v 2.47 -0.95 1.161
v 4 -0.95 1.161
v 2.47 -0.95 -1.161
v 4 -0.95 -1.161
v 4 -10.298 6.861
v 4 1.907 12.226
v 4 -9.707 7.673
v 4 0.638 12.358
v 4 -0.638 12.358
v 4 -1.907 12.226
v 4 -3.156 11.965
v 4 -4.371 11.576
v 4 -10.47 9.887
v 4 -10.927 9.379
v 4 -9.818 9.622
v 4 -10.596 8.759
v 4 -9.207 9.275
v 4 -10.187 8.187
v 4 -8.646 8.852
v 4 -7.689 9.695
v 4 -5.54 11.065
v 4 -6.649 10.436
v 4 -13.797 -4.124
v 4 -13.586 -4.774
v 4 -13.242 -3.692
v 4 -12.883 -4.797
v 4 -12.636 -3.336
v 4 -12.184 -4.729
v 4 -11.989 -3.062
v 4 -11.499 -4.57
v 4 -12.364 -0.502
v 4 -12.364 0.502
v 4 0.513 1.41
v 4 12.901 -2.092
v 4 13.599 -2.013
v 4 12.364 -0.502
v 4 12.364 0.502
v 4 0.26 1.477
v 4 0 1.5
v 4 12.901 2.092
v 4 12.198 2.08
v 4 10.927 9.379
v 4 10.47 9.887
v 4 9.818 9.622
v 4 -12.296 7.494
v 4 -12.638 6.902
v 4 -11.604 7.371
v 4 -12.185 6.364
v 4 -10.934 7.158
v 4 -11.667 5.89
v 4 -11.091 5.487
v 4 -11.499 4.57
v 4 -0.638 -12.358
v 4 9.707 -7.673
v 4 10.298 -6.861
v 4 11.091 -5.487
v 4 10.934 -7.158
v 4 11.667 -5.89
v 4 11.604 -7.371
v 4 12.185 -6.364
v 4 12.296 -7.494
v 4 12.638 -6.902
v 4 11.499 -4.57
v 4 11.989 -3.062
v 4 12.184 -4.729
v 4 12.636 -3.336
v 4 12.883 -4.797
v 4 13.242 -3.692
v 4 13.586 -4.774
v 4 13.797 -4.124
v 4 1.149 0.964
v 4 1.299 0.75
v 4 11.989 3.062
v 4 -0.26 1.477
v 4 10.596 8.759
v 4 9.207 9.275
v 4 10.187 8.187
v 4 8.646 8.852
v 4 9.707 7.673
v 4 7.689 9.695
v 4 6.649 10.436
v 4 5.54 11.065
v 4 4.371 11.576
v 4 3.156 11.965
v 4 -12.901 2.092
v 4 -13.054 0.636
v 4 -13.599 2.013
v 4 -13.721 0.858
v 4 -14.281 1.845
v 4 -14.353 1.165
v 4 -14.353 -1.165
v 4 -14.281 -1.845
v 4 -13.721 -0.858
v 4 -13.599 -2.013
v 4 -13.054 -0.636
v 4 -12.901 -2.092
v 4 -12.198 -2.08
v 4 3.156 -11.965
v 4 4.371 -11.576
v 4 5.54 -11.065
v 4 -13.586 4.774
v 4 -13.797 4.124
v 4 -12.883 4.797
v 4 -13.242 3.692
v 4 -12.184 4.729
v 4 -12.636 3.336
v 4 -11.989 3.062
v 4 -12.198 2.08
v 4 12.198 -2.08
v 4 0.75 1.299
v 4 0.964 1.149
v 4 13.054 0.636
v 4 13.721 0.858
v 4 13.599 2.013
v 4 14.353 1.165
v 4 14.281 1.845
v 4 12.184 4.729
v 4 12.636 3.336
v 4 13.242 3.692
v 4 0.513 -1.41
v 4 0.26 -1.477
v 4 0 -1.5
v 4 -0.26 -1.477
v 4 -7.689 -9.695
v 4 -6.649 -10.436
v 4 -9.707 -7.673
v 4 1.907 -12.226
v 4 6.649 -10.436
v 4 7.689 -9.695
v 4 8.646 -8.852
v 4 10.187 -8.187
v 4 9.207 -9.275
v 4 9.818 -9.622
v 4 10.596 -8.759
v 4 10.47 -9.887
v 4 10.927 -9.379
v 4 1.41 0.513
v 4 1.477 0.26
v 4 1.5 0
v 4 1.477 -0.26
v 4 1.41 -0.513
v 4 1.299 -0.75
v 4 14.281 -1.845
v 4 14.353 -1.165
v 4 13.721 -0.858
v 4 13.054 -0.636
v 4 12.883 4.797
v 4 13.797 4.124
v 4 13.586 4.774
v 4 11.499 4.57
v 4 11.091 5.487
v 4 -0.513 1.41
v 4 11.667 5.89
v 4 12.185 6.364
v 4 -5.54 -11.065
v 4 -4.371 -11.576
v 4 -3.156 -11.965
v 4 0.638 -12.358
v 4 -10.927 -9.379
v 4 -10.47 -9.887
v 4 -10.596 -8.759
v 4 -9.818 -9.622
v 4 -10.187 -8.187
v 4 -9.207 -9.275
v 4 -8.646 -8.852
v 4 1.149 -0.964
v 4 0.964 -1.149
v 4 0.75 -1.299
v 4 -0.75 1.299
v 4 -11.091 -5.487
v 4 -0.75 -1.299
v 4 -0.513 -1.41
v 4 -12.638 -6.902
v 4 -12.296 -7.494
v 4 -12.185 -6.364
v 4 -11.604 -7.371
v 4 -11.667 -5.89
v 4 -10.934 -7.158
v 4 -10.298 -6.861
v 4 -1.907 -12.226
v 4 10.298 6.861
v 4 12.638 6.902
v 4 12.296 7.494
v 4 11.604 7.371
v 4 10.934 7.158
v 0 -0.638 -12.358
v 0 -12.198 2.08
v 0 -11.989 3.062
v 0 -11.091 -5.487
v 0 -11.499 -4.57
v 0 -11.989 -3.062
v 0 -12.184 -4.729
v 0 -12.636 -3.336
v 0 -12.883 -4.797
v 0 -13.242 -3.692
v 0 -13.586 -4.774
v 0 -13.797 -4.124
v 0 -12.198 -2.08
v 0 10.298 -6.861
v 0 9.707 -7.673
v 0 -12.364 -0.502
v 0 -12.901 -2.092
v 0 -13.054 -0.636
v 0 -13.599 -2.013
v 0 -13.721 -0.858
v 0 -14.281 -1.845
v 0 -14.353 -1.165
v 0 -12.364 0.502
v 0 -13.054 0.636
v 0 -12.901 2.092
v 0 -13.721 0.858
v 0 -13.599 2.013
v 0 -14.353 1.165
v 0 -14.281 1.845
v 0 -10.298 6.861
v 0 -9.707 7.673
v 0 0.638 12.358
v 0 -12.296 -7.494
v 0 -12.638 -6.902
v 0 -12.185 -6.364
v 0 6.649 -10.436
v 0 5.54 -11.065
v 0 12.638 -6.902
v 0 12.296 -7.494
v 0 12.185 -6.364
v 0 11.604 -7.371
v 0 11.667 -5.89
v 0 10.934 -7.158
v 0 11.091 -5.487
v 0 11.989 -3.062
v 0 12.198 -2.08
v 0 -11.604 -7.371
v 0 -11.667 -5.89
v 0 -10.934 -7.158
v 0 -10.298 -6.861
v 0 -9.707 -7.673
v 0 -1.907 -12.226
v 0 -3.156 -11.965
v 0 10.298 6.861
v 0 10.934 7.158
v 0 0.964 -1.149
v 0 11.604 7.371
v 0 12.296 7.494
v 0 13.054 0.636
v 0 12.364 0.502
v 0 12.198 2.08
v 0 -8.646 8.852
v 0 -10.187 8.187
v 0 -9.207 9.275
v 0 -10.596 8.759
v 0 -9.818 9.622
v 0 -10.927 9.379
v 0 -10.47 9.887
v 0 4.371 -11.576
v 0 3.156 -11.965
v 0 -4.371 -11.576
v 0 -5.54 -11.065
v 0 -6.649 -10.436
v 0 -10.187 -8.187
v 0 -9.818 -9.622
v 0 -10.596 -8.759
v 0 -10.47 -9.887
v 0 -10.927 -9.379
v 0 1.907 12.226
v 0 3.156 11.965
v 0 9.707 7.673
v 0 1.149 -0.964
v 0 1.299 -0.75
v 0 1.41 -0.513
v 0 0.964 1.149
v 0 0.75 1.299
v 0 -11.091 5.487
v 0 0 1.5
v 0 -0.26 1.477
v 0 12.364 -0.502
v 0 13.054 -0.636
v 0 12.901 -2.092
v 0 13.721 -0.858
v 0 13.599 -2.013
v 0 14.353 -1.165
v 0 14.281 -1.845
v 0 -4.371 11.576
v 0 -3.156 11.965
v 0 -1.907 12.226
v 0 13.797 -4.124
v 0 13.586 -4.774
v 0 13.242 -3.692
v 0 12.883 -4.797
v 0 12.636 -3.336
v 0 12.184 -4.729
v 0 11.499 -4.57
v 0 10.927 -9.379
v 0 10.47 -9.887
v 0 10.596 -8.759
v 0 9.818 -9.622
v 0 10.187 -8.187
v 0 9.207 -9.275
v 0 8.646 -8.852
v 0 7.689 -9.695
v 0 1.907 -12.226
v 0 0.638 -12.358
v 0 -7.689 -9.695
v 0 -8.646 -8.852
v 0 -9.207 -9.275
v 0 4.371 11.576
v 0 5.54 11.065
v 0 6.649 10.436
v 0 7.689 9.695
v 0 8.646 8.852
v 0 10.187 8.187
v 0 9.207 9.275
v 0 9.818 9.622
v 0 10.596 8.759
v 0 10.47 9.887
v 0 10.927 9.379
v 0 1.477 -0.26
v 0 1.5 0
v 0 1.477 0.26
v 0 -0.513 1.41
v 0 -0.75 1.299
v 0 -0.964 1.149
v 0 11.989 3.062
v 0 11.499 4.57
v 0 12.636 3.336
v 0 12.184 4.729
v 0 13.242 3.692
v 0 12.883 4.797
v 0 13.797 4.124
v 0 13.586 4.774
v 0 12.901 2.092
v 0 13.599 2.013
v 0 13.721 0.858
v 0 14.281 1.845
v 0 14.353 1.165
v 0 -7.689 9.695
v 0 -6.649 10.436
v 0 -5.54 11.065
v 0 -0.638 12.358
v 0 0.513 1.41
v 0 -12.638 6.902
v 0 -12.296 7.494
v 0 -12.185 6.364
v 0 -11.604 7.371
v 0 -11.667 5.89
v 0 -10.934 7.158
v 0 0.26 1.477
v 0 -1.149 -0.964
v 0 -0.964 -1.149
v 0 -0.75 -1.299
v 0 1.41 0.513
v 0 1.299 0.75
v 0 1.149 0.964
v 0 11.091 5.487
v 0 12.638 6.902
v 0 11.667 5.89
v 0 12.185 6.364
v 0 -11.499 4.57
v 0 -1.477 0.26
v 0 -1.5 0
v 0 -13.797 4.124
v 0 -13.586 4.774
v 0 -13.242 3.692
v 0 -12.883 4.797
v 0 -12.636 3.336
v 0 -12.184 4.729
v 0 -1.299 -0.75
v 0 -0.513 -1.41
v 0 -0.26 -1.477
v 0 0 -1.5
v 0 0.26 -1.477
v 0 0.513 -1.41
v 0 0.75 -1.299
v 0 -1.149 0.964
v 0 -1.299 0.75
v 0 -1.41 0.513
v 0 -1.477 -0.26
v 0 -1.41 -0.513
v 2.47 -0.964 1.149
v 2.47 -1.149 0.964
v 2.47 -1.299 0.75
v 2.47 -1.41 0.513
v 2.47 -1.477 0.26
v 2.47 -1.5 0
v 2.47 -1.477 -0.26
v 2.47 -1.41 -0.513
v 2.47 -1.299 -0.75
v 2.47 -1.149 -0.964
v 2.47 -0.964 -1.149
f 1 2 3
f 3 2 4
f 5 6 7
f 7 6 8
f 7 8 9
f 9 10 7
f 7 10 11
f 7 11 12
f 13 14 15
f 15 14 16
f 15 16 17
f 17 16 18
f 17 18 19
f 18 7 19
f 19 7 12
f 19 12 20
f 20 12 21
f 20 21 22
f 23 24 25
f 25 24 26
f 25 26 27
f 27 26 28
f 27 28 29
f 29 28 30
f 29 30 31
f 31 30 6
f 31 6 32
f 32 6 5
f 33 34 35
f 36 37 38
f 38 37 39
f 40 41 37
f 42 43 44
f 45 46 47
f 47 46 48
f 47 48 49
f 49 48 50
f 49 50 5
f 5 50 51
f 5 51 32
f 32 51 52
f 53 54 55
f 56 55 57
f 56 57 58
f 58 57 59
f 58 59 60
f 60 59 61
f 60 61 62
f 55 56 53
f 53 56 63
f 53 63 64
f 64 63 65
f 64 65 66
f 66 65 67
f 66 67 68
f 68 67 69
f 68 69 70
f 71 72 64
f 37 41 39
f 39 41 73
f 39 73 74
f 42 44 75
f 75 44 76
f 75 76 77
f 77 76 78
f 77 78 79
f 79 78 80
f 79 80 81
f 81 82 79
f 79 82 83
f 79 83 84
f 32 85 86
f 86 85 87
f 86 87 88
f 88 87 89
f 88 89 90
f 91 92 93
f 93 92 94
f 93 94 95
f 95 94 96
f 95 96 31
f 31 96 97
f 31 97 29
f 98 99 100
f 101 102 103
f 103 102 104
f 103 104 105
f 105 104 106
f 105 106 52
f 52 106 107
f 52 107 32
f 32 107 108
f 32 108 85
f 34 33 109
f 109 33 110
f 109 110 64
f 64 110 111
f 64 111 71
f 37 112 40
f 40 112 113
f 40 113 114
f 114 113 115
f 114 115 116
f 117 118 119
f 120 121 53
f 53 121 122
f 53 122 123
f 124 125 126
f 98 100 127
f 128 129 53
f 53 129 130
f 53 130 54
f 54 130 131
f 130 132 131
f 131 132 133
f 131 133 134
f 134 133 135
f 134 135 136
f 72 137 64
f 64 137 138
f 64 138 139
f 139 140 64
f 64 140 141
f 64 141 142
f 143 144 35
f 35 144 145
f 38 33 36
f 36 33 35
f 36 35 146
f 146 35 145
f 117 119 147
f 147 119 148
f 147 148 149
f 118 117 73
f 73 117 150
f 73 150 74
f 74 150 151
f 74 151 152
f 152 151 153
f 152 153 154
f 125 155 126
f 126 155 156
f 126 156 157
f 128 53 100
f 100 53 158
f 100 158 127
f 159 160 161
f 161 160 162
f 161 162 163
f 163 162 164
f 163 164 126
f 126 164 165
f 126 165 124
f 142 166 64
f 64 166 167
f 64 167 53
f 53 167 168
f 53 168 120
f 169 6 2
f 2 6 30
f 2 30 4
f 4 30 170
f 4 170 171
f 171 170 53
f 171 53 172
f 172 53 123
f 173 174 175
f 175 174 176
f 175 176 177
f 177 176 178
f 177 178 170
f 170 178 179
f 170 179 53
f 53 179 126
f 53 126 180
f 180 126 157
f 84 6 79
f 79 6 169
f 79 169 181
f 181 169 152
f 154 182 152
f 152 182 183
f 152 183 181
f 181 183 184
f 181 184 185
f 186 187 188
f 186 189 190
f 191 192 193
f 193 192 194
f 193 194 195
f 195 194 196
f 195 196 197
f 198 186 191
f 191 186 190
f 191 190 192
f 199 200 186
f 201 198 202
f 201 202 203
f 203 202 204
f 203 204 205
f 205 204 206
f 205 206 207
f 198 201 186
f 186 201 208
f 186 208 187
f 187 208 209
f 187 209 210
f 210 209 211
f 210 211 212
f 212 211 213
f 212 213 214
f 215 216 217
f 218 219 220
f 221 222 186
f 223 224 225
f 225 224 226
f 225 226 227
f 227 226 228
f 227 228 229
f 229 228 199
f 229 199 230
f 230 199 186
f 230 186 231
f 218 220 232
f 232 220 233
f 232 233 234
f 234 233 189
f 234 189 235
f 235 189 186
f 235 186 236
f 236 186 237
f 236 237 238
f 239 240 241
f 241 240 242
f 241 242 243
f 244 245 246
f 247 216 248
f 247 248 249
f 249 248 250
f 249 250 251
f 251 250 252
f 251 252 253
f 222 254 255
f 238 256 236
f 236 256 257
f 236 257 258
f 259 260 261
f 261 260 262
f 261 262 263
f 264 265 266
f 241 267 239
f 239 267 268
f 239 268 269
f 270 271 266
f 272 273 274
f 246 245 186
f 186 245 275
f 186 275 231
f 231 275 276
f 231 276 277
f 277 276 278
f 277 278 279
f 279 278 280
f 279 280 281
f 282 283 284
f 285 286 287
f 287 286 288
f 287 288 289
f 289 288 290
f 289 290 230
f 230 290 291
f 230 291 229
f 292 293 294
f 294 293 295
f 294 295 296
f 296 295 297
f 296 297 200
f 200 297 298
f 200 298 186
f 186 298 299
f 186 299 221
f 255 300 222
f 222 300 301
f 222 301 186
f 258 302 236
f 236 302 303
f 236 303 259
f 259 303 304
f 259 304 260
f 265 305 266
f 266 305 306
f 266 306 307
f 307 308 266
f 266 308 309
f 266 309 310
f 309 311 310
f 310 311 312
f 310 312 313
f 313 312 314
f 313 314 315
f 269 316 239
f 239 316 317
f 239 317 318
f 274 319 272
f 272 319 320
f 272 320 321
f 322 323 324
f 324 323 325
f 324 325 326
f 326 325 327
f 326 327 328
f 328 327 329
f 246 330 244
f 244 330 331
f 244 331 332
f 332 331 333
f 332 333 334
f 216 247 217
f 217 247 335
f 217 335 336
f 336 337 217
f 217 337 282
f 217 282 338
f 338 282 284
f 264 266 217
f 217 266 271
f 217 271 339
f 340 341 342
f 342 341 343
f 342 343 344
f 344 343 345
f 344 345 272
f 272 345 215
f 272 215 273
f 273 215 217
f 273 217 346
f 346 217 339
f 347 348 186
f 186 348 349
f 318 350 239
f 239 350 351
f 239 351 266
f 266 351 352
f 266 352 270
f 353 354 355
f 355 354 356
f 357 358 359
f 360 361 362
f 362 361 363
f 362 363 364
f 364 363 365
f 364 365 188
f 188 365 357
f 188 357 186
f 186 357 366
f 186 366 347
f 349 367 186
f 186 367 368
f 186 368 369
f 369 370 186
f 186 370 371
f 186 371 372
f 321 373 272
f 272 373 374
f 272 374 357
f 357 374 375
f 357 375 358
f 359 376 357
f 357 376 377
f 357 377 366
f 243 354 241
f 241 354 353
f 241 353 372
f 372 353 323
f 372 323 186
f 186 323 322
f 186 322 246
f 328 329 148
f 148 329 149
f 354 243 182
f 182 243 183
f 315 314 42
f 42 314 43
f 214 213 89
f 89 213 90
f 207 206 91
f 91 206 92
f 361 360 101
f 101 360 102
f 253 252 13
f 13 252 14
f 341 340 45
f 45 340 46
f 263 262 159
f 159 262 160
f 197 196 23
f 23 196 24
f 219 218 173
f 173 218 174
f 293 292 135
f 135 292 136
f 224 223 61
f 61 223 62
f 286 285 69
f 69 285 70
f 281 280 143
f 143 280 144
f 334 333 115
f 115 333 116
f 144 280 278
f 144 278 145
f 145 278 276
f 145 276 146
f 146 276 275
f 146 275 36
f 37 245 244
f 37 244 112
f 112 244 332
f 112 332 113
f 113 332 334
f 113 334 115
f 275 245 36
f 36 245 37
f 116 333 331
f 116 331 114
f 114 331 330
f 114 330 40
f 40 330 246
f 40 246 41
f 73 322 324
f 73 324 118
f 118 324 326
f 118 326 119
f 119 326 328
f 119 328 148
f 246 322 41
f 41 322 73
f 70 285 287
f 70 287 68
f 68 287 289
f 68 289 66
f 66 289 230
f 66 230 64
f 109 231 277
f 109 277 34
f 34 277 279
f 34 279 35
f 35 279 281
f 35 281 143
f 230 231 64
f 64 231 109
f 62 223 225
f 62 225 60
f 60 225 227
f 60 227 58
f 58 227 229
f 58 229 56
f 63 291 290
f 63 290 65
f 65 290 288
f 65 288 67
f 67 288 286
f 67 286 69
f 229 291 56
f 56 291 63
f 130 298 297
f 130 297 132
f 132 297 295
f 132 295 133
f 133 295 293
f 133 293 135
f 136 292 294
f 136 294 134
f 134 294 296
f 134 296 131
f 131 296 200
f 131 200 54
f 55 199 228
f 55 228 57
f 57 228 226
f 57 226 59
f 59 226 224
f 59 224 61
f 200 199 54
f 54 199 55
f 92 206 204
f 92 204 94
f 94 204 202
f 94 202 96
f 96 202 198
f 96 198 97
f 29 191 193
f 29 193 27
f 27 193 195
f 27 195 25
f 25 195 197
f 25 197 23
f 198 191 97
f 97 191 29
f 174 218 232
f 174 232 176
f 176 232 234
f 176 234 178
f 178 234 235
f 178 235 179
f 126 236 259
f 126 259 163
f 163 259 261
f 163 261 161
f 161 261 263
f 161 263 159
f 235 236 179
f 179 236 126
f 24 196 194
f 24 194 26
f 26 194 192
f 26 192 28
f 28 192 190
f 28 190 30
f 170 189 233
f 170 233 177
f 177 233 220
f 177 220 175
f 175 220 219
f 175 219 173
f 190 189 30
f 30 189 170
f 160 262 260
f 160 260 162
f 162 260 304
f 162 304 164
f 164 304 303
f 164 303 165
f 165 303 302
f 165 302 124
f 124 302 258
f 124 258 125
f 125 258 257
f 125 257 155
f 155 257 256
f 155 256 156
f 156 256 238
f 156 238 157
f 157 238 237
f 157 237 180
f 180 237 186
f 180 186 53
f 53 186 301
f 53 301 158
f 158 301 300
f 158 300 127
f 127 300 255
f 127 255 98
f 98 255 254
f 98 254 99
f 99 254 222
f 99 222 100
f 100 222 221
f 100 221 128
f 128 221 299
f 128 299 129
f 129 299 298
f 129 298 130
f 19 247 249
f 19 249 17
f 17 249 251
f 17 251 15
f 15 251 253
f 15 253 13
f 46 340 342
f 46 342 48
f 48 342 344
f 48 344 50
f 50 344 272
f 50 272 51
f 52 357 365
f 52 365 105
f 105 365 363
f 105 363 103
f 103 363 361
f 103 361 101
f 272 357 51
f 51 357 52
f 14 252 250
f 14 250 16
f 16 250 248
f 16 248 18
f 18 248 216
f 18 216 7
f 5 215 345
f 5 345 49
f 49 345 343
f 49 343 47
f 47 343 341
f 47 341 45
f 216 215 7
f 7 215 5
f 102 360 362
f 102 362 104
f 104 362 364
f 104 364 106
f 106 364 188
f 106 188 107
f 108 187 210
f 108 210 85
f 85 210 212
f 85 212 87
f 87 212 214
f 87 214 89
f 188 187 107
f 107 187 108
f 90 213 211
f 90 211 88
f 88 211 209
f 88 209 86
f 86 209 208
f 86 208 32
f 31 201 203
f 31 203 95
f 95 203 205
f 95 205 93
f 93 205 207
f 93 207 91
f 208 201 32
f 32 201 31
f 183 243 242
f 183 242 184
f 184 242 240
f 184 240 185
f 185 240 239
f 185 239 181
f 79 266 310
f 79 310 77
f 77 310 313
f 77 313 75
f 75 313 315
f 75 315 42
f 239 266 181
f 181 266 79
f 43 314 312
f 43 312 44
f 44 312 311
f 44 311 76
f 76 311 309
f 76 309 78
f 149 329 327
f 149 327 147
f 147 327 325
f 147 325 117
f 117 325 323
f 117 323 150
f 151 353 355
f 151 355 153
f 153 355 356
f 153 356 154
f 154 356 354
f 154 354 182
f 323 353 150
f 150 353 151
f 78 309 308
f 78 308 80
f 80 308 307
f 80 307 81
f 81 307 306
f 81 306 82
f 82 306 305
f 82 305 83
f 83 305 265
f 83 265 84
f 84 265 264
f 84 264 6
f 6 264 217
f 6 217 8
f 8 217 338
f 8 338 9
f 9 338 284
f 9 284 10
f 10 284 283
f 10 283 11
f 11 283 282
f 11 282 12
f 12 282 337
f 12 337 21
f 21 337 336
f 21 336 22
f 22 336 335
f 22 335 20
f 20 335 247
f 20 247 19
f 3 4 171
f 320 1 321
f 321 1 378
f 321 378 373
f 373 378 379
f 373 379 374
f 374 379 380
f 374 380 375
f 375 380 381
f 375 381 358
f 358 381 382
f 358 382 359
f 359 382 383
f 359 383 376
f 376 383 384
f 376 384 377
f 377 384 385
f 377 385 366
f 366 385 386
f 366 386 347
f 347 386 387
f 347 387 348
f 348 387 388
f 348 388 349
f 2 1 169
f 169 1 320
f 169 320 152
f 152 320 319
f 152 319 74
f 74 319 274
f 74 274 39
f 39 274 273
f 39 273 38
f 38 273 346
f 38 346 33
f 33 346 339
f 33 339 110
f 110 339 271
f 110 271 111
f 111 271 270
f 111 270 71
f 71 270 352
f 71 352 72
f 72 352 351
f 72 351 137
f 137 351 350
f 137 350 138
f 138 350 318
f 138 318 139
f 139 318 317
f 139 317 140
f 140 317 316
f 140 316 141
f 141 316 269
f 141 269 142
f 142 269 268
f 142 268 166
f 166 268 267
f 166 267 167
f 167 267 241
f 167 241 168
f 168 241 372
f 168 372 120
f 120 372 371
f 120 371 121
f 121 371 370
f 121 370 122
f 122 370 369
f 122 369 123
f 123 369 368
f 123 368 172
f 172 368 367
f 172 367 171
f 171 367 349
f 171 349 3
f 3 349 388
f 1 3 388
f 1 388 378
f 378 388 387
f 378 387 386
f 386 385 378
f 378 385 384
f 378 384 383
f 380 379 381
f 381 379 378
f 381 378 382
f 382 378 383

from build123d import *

# Parameters (mm, degrees)
BASPROSKE_W        = 4
BASPROSKE_H        = 14.4
TOOTHCUT_DEPTH     = 21.753794834
TEETHCUTS_COUNT    = 30
TEETHCUTS_ANGLE    = 348
BORE_DEPTH         = 50.0000508
CUT_EXTRUDE2_START = -10
CUT_EXTRUDE2_DEPTH = 10
CUT_EXTRUDE3_START = -2.47
SKETCH3_R          = 1.5
CUT_EXTRUDE3_DEPTH = 2.47


with BuildPart() as part:
    # BasProSke → Base-Revolve (revolve)
    with BuildSketch(Plane(origin=(0, 0, 0), x_dir=(1, 0, 0), z_dir=(0, 1, 0)), mode=Mode.PRIVATE) as base_revolve_sk:
        with Locations((2, 7.2)):
            Rectangle(BASPROSKE_W, BASPROSKE_H)
    revolve(base_revolve_sk.sketch.rotate(Axis((-10, 0, 0), (1, 0, 0)), 180), axis=Axis((-10, 0, 0), (1, 0, 0)))

    # TooCutSke → ToothCut (cut, through all)
    with BuildSketch(Plane(origin=(0, 0, 0), x_dir=(0, 0, -1), z_dir=(1, 0, 0))):
        with BuildLine():
            ThreePointArc((0.502005058, 12.363812799), (0, 12.374), (-0.502005058, 12.363812799))
            ThreePointArc((-0.502005058, 12.363812799), (-0.740487606, 13.404090158), (-1.178907792, 14.377146503))
            ThreePointArc((-1.178907792, 14.377146503), (0, 14.4254), (1.178907792, 14.377146503))
            ThreePointArc((1.178907792, 14.377146503), (0.740487606, 13.404090158), (0.502005058, 12.363812799))
        make_face()
    toothcut = extrude(amount=TOOTHCUT_DEPTH, mode=Mode.SUBTRACT)

    # TeethCuts: ToothCut ×30 about axis
    teethcuts_axis = Axis((-10, 0, 0), (1, 0, 0))
    for i in range(1, TEETHCUTS_COUNT):
        add(toothcut.rotate(teethcuts_axis, i * TEETHCUTS_ANGLE / (TEETHCUTS_COUNT - 1)), mode=Mode.SUBTRACT)

    # BorSke → Bore (cut, symmetric)
    with BuildSketch(Plane(origin=(0, 0, 0), x_dir=(0, 0, -1), z_dir=(1, 0, 0))):
        with BuildLine():
            Line((-1.160818677, -0.95), (1.160818677, -0.95))
            ThreePointArc((1.160818677, -0.95), (0, 1.5), (-1.160818677, -0.95))
        make_face()
    extrude(amount=BORE_DEPTH, both=True, mode=Mode.SUBTRACT)

    # Sketch1 → Cut-Extrude2 (cut)
    with BuildSketch(Plane(origin=(4, 0, 0), x_dir=(0, 0, -1), z_dir=(1, 0, 0)).offset(CUT_EXTRUDE2_START)):
        with BuildLine():
            Line((-9.19567407, 8.279822123), (-11.837430087, 9.990379384))
            ThreePointArc((-11.837430087, 9.990379384), (-15.480248321, -0.542534064), (-11.108982601, -10.79457905))
            Line((-11.108982601, -10.79457905), (-9.083189008, -8.403068097))
            ThreePointArc((-9.083189008, -8.403068097), (-12.373718737, -0.083430299), (-9.19567407, 8.279822123))
        make_face()
        with BuildLine():
            Line((9.083189008, -8.403068097), (11.108982601, -10.79457905))
            ThreePointArc((11.108982601, -10.79457905), (15.480248321, -0.542534064), (11.837430087, 9.990379384))
            Line((11.837430087, 9.990379384), (9.19567407, 8.279822123))
            ThreePointArc((9.19567407, 8.279822123), (12.373718737, -0.083430299), (9.083189008, -8.403068097))
        make_face()
    extrude(amount=CUT_EXTRUDE2_DEPTH, mode=Mode.SUBTRACT)

    # Sketch3 → Cut-Extrude3 (cut)
    with BuildSketch(Plane.ZY.offset(CUT_EXTRUDE3_START)):
        with Locations(Location((0, 0, 0), (0, 0, 320.703519761))):
            Circle(SKETCH3_R)
    extrude(amount=CUT_EXTRUDE3_DEPTH, mode=Mode.SUBTRACT)


solid = part.part
